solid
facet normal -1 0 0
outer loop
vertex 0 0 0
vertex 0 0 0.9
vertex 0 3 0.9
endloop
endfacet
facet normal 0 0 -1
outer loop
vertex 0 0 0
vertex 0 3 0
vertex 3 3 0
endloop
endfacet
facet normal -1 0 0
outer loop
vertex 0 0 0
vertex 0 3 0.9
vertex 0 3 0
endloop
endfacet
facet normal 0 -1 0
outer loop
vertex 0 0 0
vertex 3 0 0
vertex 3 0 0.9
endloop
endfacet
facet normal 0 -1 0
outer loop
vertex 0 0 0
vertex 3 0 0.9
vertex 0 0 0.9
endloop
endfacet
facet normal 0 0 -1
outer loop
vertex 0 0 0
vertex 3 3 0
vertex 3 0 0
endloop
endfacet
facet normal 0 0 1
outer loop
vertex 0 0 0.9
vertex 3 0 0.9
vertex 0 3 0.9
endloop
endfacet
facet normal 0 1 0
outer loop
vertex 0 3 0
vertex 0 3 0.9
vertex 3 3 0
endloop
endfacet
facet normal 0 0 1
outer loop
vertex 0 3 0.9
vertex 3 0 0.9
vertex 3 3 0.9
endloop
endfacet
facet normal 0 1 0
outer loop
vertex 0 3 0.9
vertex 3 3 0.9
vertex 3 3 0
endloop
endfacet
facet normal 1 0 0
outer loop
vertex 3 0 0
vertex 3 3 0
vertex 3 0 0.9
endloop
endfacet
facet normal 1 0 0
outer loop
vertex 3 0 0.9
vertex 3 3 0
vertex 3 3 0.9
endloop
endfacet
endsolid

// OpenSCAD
/* Warning, this is a very basic generator with a lot of approximation 
input data : [VQFN, N8A, 3x3x0.90mm, 16, , A, C04-01003A]
generated by com.zoubworld.electronics.cad.model3d.Basic
Date : Sun Feb 15 10:50:49 CET 2026
*/

//body
color("black")
translate([0,0,0])
cube([3.0,3.0,0.9], center=false);
